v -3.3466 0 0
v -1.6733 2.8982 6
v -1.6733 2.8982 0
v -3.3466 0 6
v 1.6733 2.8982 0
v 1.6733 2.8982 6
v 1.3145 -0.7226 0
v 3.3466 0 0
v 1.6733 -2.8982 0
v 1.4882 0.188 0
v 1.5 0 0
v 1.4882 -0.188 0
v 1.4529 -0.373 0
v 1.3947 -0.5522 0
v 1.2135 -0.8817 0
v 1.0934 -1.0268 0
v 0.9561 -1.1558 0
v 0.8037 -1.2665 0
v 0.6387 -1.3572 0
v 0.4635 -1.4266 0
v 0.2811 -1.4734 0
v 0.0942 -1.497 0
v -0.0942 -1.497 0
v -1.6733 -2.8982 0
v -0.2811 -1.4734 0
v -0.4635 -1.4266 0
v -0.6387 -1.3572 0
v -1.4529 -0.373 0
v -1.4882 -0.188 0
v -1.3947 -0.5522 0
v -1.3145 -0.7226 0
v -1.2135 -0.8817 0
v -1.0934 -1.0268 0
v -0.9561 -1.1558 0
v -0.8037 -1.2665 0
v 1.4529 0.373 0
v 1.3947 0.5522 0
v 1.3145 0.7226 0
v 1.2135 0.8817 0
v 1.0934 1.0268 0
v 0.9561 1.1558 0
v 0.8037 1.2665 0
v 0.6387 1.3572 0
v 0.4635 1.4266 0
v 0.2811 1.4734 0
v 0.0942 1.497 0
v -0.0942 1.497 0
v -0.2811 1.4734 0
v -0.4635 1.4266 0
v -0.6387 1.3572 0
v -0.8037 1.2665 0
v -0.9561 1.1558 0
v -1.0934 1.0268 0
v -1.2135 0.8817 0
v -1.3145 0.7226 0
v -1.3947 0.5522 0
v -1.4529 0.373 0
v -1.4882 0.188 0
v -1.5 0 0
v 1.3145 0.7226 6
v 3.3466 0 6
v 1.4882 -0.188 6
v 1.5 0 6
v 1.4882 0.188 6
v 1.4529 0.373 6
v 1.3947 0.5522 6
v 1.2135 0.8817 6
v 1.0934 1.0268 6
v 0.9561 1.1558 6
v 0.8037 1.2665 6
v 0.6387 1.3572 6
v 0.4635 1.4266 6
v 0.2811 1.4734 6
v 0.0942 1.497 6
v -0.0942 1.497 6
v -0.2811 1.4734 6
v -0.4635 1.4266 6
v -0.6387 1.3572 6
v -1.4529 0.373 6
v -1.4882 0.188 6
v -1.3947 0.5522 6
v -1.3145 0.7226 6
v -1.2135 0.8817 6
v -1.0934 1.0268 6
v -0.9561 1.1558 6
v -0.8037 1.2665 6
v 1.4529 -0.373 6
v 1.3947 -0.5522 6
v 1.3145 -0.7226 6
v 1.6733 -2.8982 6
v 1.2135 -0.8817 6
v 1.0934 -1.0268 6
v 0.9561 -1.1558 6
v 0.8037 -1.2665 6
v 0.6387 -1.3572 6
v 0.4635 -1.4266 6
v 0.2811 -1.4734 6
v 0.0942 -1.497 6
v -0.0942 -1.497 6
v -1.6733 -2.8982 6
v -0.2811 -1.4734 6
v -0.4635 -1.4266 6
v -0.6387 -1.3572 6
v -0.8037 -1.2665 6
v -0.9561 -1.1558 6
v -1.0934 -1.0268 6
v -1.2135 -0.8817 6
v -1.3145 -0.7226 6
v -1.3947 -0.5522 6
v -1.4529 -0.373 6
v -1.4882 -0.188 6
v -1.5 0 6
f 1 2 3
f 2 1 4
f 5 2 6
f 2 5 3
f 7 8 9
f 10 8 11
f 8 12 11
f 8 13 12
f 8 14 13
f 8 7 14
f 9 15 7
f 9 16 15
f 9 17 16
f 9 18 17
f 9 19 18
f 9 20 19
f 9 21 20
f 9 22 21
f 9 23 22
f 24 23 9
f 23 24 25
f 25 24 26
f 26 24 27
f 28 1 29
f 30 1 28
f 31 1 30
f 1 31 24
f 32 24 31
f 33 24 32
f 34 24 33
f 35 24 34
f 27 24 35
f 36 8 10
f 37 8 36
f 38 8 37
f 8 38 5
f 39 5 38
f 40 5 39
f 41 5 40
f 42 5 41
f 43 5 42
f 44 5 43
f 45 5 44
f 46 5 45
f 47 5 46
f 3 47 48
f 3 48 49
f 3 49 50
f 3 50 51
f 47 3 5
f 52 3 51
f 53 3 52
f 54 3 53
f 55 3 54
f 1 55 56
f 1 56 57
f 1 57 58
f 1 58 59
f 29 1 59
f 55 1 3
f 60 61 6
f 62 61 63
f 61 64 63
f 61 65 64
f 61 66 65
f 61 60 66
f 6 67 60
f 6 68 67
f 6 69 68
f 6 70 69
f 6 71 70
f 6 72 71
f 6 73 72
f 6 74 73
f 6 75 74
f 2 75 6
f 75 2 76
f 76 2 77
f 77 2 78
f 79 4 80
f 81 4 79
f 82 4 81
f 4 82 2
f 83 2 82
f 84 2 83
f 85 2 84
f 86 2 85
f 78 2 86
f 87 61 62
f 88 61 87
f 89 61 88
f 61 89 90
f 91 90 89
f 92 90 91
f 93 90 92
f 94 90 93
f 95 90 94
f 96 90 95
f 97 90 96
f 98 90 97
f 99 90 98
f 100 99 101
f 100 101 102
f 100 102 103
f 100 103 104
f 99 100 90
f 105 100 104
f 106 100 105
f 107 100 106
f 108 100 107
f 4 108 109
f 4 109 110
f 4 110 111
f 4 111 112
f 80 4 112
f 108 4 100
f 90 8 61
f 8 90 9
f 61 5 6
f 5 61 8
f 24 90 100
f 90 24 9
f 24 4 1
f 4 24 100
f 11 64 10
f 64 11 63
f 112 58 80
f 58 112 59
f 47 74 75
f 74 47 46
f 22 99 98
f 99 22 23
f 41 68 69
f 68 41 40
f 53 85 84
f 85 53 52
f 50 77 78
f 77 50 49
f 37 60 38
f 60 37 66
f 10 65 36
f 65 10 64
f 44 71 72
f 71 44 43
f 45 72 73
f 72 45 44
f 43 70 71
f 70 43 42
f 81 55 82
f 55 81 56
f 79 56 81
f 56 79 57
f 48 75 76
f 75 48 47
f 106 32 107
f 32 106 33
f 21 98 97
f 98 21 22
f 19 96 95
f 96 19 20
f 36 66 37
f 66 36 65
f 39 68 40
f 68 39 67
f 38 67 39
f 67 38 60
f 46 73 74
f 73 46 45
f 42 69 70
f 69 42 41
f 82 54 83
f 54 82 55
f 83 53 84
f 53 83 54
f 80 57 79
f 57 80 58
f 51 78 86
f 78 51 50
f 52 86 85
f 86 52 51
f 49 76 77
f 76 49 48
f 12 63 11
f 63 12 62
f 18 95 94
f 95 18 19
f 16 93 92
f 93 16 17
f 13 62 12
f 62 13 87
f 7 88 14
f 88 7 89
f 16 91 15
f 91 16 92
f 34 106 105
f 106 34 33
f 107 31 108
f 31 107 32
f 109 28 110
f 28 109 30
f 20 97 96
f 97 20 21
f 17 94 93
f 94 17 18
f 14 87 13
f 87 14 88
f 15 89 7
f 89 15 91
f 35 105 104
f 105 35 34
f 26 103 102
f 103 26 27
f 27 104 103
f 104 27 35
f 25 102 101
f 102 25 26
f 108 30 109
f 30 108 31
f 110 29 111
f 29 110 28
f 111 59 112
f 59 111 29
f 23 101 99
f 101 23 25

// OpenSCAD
$fn = 50;


difference() {
	union() {
		translate(v = [0, 0, 0]) {
			rotate(a = [0, 0, 0]) {
				translate(v = [0, 0, 0]) {
					rotate(a = [0, 0, 0]) {
						linear_extrude(height = 6) {
							polygon(points = [[3.3466000000, 0.0000000000], [1.6733000000, 2.8982406163], [-1.6733000000, 2.8982406163], [-3.3466000000, 0.0000000000], [-1.6733000000, -2.8982406163], [1.6733000000, -2.8982406163]]);
						}
					}
				}
			}
		}
	}
	union() {
		translate(v = [0, 0, 0]) {
			rotate(a = [0, 0, 0]) {
				cylinder(h = 6, r = 1.5000000000);
			}
		}
	}
}
